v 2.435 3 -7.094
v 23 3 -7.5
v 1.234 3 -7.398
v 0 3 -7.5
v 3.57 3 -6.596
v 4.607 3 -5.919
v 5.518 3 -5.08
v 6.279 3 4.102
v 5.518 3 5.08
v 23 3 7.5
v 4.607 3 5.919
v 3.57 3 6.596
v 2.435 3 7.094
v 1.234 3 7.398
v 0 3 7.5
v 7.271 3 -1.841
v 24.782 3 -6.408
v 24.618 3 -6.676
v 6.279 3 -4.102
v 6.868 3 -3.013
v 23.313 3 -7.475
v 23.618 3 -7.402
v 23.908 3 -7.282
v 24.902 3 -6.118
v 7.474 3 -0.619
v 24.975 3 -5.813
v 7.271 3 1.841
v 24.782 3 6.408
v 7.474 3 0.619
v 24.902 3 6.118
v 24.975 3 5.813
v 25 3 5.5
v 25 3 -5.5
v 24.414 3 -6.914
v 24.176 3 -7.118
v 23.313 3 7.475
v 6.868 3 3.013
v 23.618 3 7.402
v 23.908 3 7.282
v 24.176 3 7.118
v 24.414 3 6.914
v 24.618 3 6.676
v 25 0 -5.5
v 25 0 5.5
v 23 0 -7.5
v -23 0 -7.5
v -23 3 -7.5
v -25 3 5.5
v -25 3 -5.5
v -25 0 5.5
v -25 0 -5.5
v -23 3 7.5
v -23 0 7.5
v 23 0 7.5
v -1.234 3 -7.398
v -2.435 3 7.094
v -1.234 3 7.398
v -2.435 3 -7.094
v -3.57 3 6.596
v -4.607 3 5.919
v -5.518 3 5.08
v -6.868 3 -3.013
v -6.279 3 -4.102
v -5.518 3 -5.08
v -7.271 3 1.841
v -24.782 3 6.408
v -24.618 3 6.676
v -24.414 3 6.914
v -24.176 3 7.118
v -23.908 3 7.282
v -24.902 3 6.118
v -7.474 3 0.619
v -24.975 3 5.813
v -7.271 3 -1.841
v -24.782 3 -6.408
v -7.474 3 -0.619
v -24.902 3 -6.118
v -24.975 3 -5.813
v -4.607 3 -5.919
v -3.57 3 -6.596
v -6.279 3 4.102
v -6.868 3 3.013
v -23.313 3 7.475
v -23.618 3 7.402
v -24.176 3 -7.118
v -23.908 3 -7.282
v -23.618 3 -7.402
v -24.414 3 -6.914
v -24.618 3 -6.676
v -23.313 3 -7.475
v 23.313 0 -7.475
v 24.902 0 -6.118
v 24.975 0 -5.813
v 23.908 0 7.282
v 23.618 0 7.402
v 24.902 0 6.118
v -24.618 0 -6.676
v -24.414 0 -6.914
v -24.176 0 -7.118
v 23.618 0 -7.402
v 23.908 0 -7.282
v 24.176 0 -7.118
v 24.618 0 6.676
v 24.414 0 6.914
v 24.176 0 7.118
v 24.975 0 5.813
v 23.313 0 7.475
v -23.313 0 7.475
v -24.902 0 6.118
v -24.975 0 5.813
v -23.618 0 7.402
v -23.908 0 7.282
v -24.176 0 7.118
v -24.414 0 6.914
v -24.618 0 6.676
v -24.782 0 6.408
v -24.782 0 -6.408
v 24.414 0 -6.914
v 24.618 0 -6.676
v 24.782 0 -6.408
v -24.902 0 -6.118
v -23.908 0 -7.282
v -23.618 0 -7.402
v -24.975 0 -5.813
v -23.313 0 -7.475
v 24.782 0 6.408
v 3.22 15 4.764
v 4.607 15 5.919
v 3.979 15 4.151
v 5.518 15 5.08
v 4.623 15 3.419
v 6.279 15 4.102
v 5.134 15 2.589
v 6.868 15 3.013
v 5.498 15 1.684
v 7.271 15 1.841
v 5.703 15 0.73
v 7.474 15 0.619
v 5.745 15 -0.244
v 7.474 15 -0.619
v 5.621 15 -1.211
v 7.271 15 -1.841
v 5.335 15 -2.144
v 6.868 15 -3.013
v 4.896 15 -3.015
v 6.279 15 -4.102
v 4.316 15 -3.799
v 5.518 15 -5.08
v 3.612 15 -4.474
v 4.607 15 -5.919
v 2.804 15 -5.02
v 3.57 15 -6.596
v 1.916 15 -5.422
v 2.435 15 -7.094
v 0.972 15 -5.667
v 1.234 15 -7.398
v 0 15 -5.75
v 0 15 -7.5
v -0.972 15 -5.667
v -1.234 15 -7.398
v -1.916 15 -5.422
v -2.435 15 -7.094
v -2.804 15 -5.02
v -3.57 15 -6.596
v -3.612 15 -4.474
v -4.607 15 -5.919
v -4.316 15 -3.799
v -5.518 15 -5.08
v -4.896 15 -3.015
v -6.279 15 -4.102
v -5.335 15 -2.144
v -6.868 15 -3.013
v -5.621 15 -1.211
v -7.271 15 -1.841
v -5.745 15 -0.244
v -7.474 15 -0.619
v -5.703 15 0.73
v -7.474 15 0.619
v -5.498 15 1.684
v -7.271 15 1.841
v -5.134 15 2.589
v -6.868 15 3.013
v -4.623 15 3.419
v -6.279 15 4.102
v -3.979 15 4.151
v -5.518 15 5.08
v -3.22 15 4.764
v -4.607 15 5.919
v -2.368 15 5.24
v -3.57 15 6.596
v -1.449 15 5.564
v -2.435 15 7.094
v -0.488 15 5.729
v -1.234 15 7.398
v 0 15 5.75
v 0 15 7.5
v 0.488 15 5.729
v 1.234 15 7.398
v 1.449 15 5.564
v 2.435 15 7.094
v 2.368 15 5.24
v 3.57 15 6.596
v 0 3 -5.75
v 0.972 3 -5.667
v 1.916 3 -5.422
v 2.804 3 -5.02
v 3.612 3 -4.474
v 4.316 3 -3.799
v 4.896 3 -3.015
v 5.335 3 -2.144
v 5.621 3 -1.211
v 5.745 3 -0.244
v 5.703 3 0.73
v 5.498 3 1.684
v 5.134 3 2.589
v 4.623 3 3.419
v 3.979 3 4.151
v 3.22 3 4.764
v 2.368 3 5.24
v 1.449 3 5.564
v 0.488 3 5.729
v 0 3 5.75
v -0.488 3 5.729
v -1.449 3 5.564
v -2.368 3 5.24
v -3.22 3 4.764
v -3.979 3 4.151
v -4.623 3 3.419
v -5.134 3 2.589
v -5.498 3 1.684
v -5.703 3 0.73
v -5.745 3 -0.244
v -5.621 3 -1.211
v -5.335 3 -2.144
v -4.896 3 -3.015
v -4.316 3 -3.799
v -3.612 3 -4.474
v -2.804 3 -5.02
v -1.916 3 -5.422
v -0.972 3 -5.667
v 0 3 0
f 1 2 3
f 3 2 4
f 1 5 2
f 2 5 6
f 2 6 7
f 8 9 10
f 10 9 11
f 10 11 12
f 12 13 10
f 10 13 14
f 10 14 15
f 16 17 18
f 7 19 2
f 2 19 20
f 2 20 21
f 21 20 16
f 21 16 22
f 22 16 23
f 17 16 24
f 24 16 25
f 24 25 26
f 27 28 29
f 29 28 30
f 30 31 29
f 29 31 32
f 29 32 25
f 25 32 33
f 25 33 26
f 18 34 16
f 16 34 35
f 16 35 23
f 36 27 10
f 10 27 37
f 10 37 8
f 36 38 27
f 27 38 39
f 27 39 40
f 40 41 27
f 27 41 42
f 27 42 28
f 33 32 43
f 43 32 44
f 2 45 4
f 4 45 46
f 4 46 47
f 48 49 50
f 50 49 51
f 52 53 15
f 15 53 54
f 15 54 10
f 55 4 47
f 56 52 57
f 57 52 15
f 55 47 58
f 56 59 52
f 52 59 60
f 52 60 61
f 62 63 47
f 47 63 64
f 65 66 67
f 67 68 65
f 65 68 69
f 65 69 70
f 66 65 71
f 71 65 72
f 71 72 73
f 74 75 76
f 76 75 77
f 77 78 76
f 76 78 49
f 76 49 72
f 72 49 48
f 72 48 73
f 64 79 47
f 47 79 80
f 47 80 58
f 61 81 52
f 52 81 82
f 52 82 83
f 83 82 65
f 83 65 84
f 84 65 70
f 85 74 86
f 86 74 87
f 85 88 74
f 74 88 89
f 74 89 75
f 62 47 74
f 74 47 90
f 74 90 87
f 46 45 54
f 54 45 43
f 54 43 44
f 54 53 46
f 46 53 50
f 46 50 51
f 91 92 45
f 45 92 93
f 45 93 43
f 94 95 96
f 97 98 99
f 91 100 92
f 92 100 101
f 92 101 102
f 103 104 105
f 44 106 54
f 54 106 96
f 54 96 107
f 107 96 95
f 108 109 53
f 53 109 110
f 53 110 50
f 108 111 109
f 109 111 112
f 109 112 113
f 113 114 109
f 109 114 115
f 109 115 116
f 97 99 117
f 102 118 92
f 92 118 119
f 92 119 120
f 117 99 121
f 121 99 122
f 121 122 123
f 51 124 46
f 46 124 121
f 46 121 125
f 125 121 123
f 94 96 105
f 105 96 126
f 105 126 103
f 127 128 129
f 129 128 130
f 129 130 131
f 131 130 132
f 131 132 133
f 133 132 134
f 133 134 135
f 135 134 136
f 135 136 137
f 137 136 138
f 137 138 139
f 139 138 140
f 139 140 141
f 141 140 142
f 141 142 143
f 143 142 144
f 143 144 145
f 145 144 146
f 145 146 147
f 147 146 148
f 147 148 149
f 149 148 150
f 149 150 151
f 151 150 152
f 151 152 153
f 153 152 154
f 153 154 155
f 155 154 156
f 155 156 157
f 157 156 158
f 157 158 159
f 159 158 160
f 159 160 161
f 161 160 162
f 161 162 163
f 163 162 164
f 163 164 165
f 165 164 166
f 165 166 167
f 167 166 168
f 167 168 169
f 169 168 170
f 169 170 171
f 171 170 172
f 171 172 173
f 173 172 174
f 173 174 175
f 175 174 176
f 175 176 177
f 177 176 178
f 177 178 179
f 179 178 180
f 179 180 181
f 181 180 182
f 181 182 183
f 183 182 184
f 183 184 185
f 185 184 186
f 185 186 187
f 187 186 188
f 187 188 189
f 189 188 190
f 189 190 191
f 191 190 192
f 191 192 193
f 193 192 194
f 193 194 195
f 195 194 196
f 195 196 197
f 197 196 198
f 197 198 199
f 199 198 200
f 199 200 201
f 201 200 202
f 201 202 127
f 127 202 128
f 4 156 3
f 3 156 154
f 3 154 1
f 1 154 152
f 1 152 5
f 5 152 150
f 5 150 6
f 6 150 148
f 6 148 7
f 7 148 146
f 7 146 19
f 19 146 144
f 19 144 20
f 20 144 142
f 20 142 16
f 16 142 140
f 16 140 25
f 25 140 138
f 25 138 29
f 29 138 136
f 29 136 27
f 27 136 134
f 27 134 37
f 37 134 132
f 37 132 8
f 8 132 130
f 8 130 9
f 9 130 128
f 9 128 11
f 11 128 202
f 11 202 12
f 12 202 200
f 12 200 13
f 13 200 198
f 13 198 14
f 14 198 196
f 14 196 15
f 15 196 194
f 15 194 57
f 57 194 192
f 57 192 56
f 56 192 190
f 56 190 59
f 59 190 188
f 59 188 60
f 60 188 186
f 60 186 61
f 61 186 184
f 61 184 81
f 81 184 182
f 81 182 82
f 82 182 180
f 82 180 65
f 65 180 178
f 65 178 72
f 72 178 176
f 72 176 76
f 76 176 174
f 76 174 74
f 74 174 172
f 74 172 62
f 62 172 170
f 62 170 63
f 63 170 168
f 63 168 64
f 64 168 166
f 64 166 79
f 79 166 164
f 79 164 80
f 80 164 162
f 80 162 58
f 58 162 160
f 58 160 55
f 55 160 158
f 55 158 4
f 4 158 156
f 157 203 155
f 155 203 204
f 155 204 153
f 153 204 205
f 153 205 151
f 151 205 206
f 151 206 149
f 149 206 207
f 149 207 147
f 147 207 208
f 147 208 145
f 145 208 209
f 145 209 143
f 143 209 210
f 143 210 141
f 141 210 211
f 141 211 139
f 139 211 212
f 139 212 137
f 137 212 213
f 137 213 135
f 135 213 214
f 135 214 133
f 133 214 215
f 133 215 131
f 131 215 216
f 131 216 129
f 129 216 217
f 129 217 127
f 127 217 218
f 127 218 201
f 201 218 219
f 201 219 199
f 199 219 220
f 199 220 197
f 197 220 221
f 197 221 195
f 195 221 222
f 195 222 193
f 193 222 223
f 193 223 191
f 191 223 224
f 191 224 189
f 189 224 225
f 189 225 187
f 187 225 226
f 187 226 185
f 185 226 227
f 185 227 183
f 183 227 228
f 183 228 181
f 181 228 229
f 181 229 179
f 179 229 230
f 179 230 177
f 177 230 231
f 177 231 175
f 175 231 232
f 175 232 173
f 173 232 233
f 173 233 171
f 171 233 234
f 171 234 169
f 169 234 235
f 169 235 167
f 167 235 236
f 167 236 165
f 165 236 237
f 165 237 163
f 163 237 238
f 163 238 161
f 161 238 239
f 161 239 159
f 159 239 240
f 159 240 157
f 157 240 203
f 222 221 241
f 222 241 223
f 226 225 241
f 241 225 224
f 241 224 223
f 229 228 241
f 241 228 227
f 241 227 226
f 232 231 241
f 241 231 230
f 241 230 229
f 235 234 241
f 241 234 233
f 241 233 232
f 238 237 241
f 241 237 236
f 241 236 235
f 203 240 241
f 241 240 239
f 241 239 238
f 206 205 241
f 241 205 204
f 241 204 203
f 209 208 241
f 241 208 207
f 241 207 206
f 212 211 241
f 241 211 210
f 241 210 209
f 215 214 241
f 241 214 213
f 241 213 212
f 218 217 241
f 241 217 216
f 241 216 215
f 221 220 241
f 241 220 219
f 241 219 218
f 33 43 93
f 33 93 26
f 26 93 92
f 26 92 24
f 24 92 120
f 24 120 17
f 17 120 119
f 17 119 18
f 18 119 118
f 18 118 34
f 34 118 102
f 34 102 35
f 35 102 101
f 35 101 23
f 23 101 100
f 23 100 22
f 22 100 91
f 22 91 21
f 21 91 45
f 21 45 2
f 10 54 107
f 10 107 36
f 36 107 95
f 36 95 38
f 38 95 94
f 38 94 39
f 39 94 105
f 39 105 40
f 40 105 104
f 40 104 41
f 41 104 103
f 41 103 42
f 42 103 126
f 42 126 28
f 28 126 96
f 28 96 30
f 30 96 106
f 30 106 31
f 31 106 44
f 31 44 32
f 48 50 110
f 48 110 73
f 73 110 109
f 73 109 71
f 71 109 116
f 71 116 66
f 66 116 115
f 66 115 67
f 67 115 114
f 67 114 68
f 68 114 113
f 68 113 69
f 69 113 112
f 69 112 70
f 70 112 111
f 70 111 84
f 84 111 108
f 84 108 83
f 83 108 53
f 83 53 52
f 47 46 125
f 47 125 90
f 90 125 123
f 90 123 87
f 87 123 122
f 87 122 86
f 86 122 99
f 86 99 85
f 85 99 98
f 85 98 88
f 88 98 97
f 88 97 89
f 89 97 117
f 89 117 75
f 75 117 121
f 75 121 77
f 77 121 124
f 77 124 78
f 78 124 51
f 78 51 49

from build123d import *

# Parameters (mm, degrees)
SKIZZE1_W                       = 50
SKIZZE1_H                       = 15
AUFSATZ_LINEAR_AUSTRAGEN1_DEPTH = 3
SKIZZE2_R                       = 7.5
SKIZZE2_R_2                     = 5.75
AUFSATZ_LINEAR_AUSTRAGEN2_DEPTH = 12
VERRUNDUNG1_R                   = 2


with BuildPart() as part:
    # Skizze1 → Aufsatz-Linear austragen1 (new body)
    with BuildSketch(Plane(origin=(0, 0, 0), x_dir=(1, 0, 0), z_dir=(0, 1, 0))):
        Rectangle(SKIZZE1_W, SKIZZE1_H)
    extrude(amount=AUFSATZ_LINEAR_AUSTRAGEN1_DEPTH)

    # Skizze2 → Aufsatz-Linear austragen2 (add)
    with BuildSketch(Plane(origin=(0, 3, 0), x_dir=(1, 0, 0), z_dir=(0, 1, 0))):
        Circle(SKIZZE2_R)
        Circle(SKIZZE2_R_2, mode=Mode.SUBTRACT)
    extrude(amount=AUFSATZ_LINEAR_AUSTRAGEN2_DEPTH)

    # Verrundung1
    verrundung1_edges = [part.edges().sort_by_distance(p)[0] for p in [
        (25, 1.5, 7.5),
        (-25, 1.5, 7.5),
        (-25, 1.5, -7.5),
        (25, 1.5, -7.5),
    ]]
    fillet(verrundung1_edges, radius=VERRUNDUNG1_R)


solid = part.part
